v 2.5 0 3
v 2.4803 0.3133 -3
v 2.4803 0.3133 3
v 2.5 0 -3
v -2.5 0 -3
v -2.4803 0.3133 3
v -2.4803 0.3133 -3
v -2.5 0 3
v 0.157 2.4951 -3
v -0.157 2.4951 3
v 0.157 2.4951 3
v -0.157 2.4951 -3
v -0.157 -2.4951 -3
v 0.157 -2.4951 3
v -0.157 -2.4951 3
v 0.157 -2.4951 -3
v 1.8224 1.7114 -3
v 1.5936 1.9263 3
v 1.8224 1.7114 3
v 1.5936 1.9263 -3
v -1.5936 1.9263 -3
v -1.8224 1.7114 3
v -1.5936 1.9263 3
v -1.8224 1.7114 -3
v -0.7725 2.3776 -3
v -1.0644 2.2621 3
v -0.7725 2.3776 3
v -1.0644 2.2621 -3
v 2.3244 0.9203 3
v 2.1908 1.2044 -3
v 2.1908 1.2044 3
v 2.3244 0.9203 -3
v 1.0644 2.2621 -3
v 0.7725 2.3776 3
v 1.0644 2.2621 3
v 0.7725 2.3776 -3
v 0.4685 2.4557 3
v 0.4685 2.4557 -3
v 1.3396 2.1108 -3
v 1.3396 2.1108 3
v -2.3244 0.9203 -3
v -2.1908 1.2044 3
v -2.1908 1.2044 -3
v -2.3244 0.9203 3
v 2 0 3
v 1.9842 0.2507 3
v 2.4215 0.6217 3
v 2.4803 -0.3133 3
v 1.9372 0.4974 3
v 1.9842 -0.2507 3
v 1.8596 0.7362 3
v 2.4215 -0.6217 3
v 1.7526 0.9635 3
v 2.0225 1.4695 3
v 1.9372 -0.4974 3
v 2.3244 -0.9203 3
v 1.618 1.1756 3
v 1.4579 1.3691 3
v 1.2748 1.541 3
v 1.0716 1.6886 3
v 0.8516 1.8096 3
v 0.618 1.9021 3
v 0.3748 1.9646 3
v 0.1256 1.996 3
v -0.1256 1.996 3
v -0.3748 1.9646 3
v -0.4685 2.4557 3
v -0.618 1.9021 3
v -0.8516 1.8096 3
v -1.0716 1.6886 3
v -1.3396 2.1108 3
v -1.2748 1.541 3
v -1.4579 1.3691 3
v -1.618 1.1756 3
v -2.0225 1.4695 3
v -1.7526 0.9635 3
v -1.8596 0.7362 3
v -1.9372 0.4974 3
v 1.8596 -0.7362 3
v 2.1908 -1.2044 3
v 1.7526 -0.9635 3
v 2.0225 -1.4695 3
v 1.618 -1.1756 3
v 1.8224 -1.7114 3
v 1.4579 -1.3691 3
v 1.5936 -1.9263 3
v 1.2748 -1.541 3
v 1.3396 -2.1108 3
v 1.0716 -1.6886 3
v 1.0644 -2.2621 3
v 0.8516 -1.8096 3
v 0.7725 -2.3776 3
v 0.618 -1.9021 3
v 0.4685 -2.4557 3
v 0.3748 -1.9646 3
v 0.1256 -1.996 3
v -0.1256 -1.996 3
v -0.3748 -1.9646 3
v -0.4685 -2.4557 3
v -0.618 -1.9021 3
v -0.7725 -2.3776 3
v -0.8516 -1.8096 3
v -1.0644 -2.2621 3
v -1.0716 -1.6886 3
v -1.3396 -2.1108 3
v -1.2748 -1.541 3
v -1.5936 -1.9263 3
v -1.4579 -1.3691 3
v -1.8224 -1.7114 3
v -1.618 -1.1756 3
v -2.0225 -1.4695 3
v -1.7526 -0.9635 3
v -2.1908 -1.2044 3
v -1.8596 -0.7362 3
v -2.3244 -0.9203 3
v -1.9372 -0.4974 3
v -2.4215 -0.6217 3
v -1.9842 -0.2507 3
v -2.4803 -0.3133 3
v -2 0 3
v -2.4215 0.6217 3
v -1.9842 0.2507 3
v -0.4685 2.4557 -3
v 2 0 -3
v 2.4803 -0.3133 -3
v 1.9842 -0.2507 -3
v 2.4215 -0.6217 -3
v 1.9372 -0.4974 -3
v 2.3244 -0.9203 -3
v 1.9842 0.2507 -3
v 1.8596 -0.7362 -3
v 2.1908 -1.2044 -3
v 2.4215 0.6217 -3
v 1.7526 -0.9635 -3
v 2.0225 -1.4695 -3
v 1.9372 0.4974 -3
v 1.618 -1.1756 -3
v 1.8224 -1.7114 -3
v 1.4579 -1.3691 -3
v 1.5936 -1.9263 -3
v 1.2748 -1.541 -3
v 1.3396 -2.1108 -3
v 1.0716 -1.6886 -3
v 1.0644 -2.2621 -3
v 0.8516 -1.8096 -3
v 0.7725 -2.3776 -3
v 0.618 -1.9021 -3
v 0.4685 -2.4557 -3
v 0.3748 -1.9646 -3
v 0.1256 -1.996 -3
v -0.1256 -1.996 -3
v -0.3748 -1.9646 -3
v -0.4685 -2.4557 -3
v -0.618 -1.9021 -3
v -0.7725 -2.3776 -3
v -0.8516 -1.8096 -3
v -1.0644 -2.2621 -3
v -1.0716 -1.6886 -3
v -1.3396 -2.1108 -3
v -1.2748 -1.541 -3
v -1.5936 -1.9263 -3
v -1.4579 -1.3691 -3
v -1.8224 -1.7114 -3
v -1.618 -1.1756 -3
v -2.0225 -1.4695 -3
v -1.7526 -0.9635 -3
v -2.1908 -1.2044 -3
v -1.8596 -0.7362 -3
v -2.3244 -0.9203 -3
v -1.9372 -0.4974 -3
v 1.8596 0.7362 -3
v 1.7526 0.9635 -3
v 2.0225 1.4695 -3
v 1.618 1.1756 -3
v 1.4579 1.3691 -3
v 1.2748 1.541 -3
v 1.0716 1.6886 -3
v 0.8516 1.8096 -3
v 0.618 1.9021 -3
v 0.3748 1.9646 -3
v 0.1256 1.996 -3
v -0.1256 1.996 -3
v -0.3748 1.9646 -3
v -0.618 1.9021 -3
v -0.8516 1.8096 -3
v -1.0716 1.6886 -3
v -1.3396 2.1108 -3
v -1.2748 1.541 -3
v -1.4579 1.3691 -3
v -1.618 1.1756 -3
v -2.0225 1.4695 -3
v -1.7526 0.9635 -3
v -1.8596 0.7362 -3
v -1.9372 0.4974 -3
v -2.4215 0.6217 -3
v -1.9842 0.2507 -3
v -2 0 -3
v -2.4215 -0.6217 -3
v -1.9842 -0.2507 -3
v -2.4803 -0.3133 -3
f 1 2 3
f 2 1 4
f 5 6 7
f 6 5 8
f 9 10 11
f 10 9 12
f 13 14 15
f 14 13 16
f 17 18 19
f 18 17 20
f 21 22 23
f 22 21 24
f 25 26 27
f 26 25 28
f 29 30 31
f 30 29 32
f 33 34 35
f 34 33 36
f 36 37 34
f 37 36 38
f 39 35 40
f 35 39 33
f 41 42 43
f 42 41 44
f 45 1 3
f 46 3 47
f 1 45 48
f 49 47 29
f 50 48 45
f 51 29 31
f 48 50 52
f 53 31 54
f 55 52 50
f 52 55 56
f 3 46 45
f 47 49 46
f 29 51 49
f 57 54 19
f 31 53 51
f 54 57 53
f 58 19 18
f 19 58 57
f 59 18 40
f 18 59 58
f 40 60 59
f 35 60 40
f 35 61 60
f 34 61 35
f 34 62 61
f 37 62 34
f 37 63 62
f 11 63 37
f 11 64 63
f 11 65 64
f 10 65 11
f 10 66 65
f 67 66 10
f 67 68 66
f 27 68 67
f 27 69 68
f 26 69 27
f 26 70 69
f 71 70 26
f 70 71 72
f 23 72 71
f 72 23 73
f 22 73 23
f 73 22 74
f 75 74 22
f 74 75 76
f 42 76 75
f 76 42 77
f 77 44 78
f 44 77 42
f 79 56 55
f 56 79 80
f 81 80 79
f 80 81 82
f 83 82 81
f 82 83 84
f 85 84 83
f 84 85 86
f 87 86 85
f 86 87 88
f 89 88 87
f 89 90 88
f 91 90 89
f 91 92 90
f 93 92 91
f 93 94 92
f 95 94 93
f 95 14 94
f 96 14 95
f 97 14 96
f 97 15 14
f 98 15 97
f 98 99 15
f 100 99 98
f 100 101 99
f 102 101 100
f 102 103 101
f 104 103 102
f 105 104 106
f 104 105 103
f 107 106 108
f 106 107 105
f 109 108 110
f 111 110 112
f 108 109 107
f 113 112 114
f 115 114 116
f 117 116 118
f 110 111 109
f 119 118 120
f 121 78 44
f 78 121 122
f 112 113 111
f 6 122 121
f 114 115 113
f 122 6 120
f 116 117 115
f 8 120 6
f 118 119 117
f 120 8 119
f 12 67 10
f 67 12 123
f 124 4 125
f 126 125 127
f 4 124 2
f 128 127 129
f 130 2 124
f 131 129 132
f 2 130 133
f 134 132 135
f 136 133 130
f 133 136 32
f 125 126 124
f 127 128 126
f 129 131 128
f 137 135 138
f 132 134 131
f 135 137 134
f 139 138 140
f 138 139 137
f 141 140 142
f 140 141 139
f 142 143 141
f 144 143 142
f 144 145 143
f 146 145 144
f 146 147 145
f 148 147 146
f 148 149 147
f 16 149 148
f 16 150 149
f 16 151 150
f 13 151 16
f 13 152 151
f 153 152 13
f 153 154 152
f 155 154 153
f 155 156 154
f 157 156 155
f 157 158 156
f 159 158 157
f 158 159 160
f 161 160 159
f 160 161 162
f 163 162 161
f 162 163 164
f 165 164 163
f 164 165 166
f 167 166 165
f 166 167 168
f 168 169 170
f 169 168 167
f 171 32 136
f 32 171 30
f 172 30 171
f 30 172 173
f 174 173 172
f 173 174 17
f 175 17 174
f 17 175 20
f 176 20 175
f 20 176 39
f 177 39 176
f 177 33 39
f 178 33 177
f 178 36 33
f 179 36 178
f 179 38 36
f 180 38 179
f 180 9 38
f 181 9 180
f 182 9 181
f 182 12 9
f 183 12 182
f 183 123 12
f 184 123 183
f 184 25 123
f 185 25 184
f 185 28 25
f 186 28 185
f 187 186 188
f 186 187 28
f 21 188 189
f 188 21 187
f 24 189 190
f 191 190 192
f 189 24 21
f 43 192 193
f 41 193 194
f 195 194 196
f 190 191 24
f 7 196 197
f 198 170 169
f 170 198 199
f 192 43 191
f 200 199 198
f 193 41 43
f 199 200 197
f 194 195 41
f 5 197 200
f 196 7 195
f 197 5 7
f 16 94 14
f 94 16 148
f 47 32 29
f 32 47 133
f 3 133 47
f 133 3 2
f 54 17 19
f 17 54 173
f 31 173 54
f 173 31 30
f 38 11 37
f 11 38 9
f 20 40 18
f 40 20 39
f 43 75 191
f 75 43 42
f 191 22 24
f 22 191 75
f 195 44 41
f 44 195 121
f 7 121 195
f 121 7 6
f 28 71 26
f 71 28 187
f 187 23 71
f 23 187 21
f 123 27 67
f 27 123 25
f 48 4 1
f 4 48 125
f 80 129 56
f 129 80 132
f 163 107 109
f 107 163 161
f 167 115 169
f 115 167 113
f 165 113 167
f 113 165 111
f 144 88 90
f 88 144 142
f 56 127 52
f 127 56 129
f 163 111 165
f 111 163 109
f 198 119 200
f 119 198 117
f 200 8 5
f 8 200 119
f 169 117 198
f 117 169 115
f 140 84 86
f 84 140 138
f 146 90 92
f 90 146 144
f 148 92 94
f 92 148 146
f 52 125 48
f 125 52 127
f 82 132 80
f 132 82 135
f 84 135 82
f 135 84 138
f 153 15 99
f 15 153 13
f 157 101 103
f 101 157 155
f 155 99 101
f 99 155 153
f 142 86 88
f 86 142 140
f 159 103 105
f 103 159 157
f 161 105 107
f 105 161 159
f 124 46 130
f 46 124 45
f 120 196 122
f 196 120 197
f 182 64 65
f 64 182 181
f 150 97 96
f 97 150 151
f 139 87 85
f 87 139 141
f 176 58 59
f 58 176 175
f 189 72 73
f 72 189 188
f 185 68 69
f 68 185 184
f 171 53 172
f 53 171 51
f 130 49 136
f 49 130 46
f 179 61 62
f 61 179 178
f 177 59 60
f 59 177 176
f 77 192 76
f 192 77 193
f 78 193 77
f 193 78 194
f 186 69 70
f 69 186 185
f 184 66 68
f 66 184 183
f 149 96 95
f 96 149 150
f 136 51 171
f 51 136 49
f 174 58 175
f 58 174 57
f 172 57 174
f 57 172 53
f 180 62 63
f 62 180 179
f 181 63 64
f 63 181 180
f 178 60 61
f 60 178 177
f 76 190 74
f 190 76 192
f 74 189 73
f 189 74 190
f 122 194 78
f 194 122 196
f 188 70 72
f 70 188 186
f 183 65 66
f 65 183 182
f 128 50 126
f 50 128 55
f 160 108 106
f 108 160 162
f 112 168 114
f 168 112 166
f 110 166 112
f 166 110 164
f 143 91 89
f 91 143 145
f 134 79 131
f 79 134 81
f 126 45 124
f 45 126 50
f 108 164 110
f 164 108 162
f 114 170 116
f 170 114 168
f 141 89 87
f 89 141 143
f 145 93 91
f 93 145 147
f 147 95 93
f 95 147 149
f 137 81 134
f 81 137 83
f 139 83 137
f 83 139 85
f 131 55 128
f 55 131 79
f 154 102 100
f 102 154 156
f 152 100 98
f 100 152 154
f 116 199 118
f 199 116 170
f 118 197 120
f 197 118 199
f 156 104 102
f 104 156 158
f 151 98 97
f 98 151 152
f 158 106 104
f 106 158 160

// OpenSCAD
$fn = 50;


difference() {
	union() {
		translate(v = [0, 0, -3.0000000000]) {
			cylinder(h = 6, r = 2.5000000000);
		}
	}
	union() {
		translate(v = [0, 0, -100.0000000000]) {
			cylinder(h = 200, r = 2);
		}
	}
}
